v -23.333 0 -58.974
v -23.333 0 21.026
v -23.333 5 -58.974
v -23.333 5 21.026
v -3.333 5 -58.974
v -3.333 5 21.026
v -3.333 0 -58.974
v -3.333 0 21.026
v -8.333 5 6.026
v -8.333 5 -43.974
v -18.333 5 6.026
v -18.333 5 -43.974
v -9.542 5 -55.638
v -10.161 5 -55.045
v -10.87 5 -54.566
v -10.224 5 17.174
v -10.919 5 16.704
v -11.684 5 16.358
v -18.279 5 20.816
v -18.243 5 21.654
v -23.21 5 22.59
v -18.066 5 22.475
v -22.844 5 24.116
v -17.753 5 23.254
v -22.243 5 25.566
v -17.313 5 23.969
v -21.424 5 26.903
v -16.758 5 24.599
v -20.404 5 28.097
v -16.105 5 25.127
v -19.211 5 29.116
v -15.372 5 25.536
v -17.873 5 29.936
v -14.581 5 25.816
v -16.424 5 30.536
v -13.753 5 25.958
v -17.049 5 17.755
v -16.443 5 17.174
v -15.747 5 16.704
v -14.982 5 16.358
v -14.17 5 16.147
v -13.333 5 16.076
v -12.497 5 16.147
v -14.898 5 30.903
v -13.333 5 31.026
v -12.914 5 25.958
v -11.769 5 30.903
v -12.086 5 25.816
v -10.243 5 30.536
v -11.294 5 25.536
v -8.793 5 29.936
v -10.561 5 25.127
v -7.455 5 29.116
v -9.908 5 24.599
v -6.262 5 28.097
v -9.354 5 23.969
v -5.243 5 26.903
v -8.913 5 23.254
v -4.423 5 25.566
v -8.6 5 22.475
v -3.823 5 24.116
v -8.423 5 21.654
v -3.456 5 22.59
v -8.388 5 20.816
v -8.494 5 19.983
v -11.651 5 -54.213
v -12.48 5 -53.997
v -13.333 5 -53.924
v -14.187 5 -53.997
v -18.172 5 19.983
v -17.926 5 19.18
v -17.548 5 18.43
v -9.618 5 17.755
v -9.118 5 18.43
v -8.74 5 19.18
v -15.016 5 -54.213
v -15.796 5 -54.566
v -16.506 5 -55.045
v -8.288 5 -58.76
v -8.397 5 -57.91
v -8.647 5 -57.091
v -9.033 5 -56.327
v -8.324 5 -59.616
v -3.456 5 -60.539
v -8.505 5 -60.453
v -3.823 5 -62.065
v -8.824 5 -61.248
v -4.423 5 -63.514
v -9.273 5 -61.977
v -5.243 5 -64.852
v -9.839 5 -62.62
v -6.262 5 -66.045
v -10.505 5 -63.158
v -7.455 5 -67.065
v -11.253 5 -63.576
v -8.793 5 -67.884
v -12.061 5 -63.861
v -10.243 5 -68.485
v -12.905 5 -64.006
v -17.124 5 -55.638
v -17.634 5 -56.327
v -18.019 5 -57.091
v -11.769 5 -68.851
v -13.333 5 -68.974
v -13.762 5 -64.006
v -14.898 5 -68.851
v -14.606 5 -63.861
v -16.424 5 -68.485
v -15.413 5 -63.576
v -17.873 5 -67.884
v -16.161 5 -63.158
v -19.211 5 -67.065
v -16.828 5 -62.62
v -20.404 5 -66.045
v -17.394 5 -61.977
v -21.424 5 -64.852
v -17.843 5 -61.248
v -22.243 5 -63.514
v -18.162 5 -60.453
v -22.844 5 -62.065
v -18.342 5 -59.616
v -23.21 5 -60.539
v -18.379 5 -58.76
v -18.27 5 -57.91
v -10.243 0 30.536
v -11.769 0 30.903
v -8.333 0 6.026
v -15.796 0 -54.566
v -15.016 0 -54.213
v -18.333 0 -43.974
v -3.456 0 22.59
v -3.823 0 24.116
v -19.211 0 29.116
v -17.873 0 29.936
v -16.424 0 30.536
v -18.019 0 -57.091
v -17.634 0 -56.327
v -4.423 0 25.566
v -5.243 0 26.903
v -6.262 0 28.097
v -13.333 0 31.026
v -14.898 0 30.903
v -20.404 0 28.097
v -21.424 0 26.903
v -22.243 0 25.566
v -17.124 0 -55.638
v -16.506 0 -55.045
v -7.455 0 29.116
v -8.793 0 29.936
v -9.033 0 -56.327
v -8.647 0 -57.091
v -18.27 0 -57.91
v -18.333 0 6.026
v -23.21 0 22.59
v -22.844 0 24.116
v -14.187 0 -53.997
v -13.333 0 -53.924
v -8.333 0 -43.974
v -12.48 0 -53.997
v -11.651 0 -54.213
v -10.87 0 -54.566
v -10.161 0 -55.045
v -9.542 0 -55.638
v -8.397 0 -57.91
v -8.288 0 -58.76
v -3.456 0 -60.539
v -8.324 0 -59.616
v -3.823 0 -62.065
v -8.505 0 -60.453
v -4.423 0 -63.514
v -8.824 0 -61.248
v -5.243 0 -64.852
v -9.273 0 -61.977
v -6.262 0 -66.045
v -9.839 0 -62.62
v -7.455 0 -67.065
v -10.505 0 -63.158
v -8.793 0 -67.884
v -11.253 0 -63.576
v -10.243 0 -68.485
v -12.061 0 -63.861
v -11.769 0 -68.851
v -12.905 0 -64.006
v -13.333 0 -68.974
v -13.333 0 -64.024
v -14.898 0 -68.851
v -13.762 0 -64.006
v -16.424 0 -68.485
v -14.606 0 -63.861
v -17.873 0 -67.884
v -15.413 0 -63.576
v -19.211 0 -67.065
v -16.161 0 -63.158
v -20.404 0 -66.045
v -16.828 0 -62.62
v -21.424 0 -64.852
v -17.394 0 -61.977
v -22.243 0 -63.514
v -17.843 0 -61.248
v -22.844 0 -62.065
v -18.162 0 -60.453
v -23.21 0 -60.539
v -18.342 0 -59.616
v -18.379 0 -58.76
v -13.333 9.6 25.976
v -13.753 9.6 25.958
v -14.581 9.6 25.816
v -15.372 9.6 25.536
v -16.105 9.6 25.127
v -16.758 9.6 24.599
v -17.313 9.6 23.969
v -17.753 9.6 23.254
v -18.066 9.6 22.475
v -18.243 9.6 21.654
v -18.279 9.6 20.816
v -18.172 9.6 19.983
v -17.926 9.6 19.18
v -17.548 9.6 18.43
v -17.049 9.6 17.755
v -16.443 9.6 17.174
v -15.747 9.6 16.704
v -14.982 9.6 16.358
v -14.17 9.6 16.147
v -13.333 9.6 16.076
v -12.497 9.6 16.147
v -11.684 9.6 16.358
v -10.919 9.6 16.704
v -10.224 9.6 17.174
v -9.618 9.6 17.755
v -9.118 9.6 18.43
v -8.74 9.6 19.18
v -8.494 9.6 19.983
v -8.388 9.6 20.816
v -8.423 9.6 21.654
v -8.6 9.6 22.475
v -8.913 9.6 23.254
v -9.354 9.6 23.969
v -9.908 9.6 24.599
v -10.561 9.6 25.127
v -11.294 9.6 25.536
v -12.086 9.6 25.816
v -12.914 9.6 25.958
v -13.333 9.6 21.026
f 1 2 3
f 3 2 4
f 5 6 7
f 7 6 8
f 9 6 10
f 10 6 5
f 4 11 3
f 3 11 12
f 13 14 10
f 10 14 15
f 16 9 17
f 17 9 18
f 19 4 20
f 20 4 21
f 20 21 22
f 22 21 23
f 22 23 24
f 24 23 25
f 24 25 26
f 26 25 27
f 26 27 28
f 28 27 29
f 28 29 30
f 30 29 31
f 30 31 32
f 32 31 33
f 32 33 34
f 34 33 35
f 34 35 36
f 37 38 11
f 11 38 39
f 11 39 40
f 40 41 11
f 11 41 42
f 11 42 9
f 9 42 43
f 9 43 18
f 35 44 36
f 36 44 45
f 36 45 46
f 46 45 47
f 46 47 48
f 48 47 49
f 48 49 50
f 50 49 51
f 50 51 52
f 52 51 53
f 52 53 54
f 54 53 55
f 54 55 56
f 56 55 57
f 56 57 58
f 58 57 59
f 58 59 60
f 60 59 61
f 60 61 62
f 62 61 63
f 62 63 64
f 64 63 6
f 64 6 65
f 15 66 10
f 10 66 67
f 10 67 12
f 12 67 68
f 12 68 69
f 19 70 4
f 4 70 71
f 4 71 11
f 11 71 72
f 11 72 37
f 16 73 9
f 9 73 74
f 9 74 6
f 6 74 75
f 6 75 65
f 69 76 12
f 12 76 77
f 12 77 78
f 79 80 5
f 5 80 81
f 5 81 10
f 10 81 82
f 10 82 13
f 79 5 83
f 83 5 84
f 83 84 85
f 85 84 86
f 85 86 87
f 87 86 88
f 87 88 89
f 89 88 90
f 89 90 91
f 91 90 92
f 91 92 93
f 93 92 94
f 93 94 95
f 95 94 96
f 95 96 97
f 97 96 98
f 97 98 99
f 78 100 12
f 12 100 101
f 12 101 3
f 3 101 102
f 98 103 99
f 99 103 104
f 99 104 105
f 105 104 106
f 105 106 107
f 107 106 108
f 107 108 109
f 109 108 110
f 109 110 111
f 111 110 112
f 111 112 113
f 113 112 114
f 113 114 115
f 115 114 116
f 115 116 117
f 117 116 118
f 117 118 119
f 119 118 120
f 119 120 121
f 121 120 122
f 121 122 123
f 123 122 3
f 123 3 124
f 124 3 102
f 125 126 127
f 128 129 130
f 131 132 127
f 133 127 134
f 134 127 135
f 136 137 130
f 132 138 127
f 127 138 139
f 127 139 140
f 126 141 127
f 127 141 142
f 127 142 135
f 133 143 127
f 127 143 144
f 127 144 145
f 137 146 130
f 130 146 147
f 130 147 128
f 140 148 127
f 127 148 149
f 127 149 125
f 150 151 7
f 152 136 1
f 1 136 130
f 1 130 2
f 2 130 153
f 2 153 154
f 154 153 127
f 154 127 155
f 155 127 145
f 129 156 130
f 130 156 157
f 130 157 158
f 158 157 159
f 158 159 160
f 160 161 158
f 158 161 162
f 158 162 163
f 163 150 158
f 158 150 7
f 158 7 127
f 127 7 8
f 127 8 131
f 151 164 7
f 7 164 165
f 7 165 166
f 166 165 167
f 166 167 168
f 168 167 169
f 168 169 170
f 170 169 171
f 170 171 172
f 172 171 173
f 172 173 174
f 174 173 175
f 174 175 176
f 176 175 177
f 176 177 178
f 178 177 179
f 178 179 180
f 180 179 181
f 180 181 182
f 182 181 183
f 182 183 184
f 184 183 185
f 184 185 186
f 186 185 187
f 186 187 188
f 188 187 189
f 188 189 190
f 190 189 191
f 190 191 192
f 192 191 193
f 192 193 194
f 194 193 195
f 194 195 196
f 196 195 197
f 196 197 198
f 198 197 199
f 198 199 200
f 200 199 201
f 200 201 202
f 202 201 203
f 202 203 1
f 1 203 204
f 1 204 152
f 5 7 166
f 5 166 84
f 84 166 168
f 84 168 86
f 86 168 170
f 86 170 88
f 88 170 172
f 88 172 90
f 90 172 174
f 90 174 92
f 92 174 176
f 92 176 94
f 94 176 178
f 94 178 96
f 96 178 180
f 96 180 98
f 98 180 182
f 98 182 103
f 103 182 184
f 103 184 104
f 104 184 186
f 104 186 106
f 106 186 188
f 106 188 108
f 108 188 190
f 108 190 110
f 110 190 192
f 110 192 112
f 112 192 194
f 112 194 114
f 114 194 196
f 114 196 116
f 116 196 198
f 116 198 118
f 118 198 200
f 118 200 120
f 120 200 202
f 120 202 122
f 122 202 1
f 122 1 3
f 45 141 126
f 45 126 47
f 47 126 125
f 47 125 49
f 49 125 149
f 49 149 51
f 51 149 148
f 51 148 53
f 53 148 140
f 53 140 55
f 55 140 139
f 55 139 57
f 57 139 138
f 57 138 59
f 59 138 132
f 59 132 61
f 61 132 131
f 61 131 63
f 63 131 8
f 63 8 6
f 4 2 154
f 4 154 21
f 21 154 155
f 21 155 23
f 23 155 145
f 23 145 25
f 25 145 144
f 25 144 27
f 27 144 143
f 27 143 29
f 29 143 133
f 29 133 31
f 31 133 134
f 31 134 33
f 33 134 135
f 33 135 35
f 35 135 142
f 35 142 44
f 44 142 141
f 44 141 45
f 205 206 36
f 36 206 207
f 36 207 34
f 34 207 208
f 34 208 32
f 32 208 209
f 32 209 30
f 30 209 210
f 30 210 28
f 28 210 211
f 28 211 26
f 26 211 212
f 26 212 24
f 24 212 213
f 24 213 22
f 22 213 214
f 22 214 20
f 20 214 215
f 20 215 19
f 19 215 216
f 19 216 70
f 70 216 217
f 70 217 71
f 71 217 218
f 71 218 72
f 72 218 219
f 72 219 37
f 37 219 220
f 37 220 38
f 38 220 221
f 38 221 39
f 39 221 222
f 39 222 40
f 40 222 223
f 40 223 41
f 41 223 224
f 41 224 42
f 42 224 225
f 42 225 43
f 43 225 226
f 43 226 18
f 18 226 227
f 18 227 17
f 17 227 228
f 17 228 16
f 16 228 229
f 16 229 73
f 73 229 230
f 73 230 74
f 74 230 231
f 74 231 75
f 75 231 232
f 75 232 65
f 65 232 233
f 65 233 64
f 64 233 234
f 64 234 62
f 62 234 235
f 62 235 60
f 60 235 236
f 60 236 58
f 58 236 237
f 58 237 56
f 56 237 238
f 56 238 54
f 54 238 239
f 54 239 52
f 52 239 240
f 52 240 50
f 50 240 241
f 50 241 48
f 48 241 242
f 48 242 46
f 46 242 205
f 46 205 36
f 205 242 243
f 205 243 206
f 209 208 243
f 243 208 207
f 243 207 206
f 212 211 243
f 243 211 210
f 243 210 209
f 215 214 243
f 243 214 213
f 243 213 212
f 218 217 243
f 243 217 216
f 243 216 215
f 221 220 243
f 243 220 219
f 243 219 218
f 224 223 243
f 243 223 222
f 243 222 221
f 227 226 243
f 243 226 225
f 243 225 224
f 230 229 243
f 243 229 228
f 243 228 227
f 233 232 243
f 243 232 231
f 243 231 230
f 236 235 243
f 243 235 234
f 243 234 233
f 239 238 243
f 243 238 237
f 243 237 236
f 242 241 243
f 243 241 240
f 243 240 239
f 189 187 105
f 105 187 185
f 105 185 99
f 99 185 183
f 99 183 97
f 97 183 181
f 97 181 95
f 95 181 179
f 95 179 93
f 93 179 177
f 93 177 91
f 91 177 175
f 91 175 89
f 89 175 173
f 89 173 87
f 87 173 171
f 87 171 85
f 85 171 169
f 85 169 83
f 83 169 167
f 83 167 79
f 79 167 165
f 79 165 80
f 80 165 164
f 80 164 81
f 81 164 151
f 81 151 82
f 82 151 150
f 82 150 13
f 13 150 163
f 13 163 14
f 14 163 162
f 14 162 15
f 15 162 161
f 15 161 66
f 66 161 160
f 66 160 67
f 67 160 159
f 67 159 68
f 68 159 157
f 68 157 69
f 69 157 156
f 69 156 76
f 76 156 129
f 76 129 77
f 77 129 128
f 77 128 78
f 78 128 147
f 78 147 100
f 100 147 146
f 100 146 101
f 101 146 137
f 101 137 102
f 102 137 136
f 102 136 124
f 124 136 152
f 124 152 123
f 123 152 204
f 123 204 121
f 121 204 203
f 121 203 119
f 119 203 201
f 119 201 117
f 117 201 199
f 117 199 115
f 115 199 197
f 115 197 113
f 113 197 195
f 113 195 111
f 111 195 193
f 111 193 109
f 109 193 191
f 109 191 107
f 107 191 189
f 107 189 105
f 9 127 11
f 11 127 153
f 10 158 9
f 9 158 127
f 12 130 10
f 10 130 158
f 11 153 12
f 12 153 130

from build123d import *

# Parameters (mm, degrees)
SKETCH1_W           = 20
SKETCH1_H           = 100
BOSS_EXTRUDE1_DEPTH = 5
FILLET1_R           = 10
SKETCH2_R           = 4.95
BOSS_EXTRUDE2_DEPTH = 4.6
SKETCH2_4_R         = 5.05
CUT_EXTRUDE1_DEPTH  = 5
SKETCH4_W           = 10
SKETCH4_H           = 50
CUT_EXTRUDE2_DEPTH  = 5


with BuildPart() as part:
    # Sketch1 → Boss-Extrude1 (new body)
    with BuildSketch(Plane(origin=(0, 0, 0), x_dir=(1, 0, 0), z_dir=(0, 1, 0))):
        with Locations((-13.333333333, 18.974358974)):
            Rectangle(SKETCH1_W, SKETCH1_H)
    extrude(amount=BOSS_EXTRUDE1_DEPTH)

    # Fillet1
    fillet1_edges = [part.edges().sort_by_distance(p)[0] for p in [
        (-23.333333333, 2.5, -68.974358974),
        (-3.333333333, 2.5, -68.974358974),
        (-23.333333333, 2.5, 31.025641026),
        (-3.333333333, 2.5, 31.025641026),
    ]]
    fillet(fillet1_edges, radius=FILLET1_R - 0.0001)  # a hair under: the kernel refuses the full size

    # Sketch2 → Boss-Extrude2 (add)
    with BuildSketch(Plane(origin=(0, 5, 0), x_dir=(1, 0, 0), z_dir=(0, 1, 0))):
        with Locations(Location((-13.333333333, -21.025641026, 0), (0, 0, 90))):
            Circle(SKETCH2_R)
    extrude(amount=BOSS_EXTRUDE2_DEPTH)

    # Sketch2<4> → Cut-Extrude1 (cut)
    with BuildSketch(Plane(origin=(0, 5, 0), x_dir=(1, 0, 0), z_dir=(0, 1, 0))):
        with Locations(Location((-13.333333333, 58.974358974, 0), (0, 0, 270))):
            Circle(SKETCH2_4_R)
    extrude(amount=-CUT_EXTRUDE1_DEPTH, mode=Mode.SUBTRACT)

    # Sketch4 → Cut-Extrude2 (cut)
    with BuildSketch(Plane(origin=(0, 5, 0), x_dir=(1, 0, 0), z_dir=(0, 1, 0))):
        with Locations((-13.333333333, 18.974358974)):
            Rectangle(SKETCH4_W, SKETCH4_H)
    extrude(amount=-CUT_EXTRUDE2_DEPTH, mode=Mode.SUBTRACT)


solid = part.part
